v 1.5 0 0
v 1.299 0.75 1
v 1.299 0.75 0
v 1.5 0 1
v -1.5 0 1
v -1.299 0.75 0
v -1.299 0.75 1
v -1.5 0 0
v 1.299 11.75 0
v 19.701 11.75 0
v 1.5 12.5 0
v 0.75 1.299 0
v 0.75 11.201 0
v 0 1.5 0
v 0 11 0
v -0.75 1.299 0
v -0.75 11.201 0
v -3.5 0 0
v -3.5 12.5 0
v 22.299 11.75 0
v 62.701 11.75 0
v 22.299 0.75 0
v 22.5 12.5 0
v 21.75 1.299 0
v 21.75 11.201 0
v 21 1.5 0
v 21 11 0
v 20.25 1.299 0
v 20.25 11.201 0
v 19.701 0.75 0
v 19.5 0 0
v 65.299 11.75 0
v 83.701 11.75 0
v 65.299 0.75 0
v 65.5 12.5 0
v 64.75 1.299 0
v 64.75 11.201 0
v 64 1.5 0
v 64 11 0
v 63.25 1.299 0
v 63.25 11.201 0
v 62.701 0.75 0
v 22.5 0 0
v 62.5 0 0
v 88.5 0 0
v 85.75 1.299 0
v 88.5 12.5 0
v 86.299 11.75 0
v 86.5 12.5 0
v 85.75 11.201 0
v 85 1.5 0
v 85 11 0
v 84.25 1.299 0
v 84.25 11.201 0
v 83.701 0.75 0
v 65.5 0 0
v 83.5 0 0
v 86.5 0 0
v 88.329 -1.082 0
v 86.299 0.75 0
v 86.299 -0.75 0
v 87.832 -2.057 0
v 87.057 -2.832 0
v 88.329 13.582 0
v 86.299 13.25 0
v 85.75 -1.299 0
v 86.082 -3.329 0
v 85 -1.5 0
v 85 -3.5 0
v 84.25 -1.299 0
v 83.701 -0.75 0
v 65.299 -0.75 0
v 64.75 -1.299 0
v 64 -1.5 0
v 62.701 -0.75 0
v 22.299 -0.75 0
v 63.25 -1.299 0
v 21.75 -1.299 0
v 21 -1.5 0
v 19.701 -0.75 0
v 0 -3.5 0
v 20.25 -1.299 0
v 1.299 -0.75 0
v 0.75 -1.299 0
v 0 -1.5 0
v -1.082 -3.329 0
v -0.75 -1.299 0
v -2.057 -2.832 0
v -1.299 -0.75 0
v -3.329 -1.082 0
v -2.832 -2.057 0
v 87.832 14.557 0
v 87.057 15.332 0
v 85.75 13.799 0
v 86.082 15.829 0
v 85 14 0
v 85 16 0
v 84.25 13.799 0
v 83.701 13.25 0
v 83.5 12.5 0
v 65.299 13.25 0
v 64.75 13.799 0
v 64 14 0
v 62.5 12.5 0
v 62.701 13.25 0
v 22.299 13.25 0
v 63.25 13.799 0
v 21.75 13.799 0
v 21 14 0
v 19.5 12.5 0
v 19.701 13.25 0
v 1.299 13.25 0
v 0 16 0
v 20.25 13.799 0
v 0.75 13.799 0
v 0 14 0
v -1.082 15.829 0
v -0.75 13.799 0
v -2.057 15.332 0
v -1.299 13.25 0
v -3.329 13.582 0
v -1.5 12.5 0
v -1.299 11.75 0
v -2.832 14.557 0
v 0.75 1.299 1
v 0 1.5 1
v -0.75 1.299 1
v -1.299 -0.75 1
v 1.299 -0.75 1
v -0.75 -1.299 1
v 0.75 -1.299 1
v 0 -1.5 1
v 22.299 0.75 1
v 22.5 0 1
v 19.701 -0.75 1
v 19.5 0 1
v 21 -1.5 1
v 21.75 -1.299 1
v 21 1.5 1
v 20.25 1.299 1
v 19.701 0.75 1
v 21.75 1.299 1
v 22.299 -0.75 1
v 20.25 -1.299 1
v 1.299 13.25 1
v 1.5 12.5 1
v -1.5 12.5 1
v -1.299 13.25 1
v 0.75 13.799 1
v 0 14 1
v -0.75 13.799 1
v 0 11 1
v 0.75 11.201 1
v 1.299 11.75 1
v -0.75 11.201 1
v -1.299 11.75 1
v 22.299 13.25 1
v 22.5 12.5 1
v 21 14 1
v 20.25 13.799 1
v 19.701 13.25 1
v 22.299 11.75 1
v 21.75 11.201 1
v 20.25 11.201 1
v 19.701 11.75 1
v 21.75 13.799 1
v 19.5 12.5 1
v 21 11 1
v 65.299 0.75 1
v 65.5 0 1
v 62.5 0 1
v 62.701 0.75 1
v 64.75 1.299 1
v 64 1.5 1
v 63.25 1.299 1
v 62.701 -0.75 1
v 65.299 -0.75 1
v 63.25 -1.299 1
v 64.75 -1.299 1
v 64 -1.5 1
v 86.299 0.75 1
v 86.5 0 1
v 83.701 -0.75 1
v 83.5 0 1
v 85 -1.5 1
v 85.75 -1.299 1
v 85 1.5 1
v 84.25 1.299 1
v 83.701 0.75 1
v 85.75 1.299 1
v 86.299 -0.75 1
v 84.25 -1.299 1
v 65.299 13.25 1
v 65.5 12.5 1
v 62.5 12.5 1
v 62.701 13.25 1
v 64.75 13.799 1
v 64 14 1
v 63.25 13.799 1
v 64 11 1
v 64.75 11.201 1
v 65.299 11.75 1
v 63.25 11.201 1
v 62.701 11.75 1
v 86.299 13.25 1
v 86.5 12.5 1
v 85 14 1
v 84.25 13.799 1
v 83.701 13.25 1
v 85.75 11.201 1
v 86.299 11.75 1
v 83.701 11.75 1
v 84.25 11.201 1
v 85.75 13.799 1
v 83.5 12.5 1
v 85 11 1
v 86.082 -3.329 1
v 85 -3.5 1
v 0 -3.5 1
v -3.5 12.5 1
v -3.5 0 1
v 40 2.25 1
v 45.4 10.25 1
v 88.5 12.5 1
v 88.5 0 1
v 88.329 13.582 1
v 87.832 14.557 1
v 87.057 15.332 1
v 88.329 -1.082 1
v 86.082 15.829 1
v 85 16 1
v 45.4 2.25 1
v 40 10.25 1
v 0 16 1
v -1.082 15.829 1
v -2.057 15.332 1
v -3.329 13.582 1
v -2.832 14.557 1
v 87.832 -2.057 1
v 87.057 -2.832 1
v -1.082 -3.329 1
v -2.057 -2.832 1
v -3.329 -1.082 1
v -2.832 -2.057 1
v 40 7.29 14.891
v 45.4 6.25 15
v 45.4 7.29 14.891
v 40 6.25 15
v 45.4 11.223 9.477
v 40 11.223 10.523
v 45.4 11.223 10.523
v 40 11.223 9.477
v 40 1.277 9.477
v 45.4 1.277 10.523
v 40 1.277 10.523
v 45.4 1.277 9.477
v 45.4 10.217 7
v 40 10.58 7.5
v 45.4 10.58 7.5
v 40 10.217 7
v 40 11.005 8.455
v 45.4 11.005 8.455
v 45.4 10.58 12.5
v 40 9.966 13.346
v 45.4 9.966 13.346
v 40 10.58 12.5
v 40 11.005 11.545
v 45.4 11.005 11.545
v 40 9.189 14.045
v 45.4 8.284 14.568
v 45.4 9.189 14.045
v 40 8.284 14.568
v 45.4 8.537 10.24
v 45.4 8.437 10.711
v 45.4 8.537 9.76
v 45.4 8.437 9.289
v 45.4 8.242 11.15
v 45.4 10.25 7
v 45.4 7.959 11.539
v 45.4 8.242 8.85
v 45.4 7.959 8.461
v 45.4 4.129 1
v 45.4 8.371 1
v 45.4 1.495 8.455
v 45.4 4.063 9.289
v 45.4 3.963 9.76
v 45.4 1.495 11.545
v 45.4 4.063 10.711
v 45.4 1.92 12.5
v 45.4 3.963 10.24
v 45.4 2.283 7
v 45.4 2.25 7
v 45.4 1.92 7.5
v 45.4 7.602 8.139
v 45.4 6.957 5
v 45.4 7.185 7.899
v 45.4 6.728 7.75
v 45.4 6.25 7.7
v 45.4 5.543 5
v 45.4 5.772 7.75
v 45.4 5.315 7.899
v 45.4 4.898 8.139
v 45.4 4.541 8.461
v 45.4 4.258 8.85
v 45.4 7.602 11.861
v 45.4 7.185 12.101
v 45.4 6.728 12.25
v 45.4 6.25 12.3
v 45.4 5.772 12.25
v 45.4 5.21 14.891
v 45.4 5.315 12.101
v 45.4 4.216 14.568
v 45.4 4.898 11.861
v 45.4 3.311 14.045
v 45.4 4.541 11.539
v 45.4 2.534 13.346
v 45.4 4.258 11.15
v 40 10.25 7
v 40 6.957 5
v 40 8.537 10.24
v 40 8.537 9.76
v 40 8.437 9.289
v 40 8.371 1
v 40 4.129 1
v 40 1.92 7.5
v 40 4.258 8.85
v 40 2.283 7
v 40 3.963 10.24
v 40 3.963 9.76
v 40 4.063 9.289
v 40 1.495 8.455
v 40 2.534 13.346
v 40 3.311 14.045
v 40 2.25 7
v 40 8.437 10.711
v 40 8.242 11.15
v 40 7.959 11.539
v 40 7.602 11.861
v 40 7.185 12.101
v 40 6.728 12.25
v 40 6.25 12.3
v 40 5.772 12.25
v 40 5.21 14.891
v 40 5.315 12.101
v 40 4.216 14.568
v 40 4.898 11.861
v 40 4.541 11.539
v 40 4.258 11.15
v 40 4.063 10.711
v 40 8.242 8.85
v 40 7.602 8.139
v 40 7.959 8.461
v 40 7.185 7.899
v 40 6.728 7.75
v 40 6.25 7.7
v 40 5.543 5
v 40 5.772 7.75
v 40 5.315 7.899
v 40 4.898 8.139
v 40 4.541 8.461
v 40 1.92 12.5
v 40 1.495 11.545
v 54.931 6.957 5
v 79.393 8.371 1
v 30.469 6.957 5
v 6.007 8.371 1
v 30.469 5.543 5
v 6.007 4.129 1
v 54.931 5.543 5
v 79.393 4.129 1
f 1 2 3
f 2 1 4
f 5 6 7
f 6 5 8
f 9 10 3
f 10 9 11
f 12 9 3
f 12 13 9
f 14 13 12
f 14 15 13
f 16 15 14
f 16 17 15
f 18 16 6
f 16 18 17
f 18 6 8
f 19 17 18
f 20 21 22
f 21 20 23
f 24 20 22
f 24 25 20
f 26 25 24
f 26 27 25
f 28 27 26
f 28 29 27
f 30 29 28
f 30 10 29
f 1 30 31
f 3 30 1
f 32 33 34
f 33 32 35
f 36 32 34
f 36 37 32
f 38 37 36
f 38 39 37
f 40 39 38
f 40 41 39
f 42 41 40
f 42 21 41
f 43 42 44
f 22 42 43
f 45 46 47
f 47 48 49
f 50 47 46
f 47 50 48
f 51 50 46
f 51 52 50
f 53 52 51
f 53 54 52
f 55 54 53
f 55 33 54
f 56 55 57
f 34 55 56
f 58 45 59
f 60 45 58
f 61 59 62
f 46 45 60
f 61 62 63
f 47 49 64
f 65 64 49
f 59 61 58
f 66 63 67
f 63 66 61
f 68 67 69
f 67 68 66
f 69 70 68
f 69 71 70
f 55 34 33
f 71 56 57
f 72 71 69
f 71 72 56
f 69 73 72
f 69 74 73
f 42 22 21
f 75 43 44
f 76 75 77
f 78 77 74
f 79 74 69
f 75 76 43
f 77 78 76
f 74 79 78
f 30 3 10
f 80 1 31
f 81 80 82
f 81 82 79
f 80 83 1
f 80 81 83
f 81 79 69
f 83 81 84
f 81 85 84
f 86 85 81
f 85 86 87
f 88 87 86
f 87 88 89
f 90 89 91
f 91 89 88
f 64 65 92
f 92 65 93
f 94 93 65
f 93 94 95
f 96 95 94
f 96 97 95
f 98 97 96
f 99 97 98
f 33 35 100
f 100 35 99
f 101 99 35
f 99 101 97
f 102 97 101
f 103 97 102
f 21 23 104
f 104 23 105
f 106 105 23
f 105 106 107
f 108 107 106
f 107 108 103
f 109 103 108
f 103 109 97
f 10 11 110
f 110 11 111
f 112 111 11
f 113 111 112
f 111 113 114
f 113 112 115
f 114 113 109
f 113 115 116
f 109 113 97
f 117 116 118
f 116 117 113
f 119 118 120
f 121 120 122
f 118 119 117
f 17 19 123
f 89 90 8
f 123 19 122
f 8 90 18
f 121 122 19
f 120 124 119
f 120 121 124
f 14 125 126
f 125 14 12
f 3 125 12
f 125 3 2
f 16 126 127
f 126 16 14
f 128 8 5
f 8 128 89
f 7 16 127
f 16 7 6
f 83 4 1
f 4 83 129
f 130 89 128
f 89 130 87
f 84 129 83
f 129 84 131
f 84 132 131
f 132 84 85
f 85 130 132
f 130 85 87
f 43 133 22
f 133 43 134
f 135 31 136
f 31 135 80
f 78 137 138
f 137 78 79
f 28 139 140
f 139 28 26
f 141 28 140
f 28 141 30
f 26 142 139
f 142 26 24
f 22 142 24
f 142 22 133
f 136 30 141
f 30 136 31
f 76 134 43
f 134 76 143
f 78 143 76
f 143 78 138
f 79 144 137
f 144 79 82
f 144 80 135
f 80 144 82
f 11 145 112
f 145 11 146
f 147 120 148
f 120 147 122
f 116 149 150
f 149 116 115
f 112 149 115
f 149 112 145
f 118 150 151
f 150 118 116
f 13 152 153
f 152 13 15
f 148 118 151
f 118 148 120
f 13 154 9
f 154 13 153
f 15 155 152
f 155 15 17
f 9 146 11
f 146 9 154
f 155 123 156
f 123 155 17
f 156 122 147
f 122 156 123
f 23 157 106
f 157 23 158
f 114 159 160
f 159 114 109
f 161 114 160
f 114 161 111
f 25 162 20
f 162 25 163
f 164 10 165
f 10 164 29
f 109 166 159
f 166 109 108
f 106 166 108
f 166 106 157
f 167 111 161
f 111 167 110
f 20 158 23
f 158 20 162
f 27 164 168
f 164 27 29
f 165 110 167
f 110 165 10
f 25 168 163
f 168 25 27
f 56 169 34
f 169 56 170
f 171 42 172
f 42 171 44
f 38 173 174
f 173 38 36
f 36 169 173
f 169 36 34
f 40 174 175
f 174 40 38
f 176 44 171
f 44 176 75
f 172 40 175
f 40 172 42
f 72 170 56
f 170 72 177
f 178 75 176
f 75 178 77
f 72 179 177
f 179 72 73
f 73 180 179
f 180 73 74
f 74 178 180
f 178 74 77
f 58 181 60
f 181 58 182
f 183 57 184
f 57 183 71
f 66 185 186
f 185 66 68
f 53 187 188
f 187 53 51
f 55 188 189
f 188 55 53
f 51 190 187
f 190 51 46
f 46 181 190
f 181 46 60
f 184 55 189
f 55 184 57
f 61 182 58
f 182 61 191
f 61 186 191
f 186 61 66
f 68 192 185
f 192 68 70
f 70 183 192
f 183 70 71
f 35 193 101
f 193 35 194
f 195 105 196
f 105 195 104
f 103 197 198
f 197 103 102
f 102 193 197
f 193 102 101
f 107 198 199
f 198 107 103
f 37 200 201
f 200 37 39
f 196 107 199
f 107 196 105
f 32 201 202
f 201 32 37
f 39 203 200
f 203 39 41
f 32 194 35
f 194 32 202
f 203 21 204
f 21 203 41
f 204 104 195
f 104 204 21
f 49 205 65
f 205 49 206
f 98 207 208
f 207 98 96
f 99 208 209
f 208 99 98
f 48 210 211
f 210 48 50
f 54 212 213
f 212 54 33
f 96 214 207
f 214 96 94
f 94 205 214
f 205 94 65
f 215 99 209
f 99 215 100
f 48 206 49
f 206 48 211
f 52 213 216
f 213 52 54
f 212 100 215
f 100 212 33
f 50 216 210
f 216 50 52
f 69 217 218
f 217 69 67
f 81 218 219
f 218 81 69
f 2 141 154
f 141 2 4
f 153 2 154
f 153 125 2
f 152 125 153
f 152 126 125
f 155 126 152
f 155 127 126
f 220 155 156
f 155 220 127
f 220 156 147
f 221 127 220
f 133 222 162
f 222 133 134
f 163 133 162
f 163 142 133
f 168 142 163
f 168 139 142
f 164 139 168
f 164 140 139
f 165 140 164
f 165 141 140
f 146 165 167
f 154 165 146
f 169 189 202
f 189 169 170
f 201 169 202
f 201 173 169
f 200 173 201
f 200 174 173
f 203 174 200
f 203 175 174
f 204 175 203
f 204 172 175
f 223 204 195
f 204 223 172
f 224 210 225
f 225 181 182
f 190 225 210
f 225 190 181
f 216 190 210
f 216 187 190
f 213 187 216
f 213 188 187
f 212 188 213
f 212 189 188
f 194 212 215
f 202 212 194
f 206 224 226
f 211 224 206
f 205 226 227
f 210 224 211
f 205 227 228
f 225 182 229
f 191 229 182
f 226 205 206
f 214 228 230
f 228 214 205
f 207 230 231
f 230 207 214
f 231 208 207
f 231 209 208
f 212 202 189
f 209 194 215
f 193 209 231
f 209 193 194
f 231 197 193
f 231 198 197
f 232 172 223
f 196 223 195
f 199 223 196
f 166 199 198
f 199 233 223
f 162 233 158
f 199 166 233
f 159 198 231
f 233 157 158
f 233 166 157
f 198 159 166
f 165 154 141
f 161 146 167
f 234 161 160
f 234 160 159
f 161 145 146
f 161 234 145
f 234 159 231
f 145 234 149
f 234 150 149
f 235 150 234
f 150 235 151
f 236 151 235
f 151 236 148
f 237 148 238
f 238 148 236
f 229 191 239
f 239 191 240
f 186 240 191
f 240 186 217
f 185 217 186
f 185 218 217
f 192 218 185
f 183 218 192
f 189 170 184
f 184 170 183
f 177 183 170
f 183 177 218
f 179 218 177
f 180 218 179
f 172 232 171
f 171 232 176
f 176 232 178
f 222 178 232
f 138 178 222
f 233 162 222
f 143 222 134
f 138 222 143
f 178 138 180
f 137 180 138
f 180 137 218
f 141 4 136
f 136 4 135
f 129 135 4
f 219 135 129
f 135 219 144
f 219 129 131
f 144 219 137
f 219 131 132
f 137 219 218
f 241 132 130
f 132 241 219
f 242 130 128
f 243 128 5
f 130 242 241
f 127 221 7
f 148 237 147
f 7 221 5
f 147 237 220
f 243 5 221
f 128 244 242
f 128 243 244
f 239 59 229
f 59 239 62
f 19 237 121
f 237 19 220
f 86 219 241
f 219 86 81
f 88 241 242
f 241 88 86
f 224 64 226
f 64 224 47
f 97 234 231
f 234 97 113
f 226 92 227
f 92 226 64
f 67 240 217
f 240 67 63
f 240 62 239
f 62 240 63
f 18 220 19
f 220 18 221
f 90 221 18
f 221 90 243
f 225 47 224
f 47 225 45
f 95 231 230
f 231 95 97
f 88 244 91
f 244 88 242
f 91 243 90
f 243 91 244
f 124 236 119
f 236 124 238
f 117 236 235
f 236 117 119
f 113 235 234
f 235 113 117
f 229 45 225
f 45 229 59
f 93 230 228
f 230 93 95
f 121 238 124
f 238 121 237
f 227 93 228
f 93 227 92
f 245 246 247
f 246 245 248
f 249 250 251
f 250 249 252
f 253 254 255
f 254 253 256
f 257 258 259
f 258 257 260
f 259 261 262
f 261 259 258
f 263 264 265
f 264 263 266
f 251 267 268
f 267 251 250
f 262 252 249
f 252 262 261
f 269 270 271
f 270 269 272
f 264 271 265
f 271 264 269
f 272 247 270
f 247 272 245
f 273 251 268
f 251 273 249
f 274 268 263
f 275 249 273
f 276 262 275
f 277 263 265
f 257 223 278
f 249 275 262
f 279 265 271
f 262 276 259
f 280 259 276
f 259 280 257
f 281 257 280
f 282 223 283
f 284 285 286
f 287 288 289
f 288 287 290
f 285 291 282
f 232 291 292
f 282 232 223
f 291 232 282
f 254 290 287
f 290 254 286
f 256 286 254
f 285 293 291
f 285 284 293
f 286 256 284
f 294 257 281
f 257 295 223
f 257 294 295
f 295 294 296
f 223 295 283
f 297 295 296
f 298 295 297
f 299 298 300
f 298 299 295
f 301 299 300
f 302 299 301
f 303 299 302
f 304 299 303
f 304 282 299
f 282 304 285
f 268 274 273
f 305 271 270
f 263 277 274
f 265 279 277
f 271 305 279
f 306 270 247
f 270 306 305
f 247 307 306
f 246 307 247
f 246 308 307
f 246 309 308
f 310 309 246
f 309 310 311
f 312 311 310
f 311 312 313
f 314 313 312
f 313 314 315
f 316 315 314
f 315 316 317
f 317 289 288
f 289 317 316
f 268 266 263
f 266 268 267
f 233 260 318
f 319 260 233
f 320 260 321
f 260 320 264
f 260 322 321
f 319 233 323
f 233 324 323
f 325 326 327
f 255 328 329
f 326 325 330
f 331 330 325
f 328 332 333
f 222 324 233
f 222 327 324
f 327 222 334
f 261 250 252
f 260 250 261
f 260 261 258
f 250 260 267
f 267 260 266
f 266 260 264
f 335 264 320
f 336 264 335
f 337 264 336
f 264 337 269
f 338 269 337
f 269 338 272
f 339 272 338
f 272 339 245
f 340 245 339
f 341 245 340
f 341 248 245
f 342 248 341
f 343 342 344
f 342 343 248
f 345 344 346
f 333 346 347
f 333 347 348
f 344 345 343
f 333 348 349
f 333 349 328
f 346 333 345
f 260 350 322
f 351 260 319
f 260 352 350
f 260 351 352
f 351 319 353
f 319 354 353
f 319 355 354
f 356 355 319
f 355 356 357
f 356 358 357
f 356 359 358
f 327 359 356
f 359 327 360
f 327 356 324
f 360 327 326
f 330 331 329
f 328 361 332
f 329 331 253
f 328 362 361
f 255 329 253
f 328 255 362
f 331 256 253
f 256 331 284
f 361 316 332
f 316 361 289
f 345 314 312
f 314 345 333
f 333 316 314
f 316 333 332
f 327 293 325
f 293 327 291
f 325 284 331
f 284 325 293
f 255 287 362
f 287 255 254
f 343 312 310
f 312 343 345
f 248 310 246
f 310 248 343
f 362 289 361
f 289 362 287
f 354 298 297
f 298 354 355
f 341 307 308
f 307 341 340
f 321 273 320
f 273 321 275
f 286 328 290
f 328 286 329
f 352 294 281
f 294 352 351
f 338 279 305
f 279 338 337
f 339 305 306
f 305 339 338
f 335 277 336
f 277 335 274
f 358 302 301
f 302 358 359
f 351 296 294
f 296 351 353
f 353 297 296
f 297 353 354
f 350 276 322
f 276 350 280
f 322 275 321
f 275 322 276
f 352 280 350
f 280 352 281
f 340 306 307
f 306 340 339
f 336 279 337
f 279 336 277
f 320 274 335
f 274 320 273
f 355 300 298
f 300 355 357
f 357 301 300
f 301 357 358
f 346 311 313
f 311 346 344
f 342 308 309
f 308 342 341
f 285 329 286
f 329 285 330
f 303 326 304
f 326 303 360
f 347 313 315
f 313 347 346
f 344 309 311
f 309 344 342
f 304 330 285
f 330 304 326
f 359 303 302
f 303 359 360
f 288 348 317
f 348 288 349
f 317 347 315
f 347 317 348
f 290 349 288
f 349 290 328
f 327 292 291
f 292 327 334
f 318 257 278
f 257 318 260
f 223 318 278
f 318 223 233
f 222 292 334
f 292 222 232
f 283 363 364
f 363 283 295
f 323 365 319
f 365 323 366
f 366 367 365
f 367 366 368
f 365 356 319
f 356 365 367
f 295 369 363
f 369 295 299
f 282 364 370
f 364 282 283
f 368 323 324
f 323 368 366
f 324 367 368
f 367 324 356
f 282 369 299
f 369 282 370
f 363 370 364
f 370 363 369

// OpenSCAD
//CamDual 160 degree overlaped 60 degree
stereoBase = 64; //mm  range: 30..170

module cam_holes(){
	translate([0,0,0])
		cylinder(5,1.5,1.5, $fn=12);
	translate([21,0,0])
		cylinder(5,1.5,1.5, $fn=12);
	translate([0,12.5,0])
		cylinder(5,1.5,1.5, $fn=12);
	translate([21,12.5,0])
		cylinder(5,1.5,1.5, $fn=12);
} // module


//plate
difference(){
	translate([0,0,0])
		minkowski()	{
  			cube([21+stereoBase,12.5,0.65]);
  			cylinder(r=3.5,h=0.35, $fn=20);
		}//minkowski

	cam_holes();

	translate([stereoBase,0,0])
		cam_holes();	
}
	

//support
translate([8+stereoBase/2,6.25,10]){
	rotate([0,90,0])
		difference() {
			cylinder(5.4,5,5, $fn=30);
			cylinder(7,2.3,2.3, $fn=30);
		}//difference

	translate([0,-4,-10])
		cube([5.4,8,7]);

	translate([2.7,0,-9])
		scale([(stereoBase/3.7),1,1])
			rotate([0,0,45])	
				cylinder(4,3,1,$fn=4);
}
